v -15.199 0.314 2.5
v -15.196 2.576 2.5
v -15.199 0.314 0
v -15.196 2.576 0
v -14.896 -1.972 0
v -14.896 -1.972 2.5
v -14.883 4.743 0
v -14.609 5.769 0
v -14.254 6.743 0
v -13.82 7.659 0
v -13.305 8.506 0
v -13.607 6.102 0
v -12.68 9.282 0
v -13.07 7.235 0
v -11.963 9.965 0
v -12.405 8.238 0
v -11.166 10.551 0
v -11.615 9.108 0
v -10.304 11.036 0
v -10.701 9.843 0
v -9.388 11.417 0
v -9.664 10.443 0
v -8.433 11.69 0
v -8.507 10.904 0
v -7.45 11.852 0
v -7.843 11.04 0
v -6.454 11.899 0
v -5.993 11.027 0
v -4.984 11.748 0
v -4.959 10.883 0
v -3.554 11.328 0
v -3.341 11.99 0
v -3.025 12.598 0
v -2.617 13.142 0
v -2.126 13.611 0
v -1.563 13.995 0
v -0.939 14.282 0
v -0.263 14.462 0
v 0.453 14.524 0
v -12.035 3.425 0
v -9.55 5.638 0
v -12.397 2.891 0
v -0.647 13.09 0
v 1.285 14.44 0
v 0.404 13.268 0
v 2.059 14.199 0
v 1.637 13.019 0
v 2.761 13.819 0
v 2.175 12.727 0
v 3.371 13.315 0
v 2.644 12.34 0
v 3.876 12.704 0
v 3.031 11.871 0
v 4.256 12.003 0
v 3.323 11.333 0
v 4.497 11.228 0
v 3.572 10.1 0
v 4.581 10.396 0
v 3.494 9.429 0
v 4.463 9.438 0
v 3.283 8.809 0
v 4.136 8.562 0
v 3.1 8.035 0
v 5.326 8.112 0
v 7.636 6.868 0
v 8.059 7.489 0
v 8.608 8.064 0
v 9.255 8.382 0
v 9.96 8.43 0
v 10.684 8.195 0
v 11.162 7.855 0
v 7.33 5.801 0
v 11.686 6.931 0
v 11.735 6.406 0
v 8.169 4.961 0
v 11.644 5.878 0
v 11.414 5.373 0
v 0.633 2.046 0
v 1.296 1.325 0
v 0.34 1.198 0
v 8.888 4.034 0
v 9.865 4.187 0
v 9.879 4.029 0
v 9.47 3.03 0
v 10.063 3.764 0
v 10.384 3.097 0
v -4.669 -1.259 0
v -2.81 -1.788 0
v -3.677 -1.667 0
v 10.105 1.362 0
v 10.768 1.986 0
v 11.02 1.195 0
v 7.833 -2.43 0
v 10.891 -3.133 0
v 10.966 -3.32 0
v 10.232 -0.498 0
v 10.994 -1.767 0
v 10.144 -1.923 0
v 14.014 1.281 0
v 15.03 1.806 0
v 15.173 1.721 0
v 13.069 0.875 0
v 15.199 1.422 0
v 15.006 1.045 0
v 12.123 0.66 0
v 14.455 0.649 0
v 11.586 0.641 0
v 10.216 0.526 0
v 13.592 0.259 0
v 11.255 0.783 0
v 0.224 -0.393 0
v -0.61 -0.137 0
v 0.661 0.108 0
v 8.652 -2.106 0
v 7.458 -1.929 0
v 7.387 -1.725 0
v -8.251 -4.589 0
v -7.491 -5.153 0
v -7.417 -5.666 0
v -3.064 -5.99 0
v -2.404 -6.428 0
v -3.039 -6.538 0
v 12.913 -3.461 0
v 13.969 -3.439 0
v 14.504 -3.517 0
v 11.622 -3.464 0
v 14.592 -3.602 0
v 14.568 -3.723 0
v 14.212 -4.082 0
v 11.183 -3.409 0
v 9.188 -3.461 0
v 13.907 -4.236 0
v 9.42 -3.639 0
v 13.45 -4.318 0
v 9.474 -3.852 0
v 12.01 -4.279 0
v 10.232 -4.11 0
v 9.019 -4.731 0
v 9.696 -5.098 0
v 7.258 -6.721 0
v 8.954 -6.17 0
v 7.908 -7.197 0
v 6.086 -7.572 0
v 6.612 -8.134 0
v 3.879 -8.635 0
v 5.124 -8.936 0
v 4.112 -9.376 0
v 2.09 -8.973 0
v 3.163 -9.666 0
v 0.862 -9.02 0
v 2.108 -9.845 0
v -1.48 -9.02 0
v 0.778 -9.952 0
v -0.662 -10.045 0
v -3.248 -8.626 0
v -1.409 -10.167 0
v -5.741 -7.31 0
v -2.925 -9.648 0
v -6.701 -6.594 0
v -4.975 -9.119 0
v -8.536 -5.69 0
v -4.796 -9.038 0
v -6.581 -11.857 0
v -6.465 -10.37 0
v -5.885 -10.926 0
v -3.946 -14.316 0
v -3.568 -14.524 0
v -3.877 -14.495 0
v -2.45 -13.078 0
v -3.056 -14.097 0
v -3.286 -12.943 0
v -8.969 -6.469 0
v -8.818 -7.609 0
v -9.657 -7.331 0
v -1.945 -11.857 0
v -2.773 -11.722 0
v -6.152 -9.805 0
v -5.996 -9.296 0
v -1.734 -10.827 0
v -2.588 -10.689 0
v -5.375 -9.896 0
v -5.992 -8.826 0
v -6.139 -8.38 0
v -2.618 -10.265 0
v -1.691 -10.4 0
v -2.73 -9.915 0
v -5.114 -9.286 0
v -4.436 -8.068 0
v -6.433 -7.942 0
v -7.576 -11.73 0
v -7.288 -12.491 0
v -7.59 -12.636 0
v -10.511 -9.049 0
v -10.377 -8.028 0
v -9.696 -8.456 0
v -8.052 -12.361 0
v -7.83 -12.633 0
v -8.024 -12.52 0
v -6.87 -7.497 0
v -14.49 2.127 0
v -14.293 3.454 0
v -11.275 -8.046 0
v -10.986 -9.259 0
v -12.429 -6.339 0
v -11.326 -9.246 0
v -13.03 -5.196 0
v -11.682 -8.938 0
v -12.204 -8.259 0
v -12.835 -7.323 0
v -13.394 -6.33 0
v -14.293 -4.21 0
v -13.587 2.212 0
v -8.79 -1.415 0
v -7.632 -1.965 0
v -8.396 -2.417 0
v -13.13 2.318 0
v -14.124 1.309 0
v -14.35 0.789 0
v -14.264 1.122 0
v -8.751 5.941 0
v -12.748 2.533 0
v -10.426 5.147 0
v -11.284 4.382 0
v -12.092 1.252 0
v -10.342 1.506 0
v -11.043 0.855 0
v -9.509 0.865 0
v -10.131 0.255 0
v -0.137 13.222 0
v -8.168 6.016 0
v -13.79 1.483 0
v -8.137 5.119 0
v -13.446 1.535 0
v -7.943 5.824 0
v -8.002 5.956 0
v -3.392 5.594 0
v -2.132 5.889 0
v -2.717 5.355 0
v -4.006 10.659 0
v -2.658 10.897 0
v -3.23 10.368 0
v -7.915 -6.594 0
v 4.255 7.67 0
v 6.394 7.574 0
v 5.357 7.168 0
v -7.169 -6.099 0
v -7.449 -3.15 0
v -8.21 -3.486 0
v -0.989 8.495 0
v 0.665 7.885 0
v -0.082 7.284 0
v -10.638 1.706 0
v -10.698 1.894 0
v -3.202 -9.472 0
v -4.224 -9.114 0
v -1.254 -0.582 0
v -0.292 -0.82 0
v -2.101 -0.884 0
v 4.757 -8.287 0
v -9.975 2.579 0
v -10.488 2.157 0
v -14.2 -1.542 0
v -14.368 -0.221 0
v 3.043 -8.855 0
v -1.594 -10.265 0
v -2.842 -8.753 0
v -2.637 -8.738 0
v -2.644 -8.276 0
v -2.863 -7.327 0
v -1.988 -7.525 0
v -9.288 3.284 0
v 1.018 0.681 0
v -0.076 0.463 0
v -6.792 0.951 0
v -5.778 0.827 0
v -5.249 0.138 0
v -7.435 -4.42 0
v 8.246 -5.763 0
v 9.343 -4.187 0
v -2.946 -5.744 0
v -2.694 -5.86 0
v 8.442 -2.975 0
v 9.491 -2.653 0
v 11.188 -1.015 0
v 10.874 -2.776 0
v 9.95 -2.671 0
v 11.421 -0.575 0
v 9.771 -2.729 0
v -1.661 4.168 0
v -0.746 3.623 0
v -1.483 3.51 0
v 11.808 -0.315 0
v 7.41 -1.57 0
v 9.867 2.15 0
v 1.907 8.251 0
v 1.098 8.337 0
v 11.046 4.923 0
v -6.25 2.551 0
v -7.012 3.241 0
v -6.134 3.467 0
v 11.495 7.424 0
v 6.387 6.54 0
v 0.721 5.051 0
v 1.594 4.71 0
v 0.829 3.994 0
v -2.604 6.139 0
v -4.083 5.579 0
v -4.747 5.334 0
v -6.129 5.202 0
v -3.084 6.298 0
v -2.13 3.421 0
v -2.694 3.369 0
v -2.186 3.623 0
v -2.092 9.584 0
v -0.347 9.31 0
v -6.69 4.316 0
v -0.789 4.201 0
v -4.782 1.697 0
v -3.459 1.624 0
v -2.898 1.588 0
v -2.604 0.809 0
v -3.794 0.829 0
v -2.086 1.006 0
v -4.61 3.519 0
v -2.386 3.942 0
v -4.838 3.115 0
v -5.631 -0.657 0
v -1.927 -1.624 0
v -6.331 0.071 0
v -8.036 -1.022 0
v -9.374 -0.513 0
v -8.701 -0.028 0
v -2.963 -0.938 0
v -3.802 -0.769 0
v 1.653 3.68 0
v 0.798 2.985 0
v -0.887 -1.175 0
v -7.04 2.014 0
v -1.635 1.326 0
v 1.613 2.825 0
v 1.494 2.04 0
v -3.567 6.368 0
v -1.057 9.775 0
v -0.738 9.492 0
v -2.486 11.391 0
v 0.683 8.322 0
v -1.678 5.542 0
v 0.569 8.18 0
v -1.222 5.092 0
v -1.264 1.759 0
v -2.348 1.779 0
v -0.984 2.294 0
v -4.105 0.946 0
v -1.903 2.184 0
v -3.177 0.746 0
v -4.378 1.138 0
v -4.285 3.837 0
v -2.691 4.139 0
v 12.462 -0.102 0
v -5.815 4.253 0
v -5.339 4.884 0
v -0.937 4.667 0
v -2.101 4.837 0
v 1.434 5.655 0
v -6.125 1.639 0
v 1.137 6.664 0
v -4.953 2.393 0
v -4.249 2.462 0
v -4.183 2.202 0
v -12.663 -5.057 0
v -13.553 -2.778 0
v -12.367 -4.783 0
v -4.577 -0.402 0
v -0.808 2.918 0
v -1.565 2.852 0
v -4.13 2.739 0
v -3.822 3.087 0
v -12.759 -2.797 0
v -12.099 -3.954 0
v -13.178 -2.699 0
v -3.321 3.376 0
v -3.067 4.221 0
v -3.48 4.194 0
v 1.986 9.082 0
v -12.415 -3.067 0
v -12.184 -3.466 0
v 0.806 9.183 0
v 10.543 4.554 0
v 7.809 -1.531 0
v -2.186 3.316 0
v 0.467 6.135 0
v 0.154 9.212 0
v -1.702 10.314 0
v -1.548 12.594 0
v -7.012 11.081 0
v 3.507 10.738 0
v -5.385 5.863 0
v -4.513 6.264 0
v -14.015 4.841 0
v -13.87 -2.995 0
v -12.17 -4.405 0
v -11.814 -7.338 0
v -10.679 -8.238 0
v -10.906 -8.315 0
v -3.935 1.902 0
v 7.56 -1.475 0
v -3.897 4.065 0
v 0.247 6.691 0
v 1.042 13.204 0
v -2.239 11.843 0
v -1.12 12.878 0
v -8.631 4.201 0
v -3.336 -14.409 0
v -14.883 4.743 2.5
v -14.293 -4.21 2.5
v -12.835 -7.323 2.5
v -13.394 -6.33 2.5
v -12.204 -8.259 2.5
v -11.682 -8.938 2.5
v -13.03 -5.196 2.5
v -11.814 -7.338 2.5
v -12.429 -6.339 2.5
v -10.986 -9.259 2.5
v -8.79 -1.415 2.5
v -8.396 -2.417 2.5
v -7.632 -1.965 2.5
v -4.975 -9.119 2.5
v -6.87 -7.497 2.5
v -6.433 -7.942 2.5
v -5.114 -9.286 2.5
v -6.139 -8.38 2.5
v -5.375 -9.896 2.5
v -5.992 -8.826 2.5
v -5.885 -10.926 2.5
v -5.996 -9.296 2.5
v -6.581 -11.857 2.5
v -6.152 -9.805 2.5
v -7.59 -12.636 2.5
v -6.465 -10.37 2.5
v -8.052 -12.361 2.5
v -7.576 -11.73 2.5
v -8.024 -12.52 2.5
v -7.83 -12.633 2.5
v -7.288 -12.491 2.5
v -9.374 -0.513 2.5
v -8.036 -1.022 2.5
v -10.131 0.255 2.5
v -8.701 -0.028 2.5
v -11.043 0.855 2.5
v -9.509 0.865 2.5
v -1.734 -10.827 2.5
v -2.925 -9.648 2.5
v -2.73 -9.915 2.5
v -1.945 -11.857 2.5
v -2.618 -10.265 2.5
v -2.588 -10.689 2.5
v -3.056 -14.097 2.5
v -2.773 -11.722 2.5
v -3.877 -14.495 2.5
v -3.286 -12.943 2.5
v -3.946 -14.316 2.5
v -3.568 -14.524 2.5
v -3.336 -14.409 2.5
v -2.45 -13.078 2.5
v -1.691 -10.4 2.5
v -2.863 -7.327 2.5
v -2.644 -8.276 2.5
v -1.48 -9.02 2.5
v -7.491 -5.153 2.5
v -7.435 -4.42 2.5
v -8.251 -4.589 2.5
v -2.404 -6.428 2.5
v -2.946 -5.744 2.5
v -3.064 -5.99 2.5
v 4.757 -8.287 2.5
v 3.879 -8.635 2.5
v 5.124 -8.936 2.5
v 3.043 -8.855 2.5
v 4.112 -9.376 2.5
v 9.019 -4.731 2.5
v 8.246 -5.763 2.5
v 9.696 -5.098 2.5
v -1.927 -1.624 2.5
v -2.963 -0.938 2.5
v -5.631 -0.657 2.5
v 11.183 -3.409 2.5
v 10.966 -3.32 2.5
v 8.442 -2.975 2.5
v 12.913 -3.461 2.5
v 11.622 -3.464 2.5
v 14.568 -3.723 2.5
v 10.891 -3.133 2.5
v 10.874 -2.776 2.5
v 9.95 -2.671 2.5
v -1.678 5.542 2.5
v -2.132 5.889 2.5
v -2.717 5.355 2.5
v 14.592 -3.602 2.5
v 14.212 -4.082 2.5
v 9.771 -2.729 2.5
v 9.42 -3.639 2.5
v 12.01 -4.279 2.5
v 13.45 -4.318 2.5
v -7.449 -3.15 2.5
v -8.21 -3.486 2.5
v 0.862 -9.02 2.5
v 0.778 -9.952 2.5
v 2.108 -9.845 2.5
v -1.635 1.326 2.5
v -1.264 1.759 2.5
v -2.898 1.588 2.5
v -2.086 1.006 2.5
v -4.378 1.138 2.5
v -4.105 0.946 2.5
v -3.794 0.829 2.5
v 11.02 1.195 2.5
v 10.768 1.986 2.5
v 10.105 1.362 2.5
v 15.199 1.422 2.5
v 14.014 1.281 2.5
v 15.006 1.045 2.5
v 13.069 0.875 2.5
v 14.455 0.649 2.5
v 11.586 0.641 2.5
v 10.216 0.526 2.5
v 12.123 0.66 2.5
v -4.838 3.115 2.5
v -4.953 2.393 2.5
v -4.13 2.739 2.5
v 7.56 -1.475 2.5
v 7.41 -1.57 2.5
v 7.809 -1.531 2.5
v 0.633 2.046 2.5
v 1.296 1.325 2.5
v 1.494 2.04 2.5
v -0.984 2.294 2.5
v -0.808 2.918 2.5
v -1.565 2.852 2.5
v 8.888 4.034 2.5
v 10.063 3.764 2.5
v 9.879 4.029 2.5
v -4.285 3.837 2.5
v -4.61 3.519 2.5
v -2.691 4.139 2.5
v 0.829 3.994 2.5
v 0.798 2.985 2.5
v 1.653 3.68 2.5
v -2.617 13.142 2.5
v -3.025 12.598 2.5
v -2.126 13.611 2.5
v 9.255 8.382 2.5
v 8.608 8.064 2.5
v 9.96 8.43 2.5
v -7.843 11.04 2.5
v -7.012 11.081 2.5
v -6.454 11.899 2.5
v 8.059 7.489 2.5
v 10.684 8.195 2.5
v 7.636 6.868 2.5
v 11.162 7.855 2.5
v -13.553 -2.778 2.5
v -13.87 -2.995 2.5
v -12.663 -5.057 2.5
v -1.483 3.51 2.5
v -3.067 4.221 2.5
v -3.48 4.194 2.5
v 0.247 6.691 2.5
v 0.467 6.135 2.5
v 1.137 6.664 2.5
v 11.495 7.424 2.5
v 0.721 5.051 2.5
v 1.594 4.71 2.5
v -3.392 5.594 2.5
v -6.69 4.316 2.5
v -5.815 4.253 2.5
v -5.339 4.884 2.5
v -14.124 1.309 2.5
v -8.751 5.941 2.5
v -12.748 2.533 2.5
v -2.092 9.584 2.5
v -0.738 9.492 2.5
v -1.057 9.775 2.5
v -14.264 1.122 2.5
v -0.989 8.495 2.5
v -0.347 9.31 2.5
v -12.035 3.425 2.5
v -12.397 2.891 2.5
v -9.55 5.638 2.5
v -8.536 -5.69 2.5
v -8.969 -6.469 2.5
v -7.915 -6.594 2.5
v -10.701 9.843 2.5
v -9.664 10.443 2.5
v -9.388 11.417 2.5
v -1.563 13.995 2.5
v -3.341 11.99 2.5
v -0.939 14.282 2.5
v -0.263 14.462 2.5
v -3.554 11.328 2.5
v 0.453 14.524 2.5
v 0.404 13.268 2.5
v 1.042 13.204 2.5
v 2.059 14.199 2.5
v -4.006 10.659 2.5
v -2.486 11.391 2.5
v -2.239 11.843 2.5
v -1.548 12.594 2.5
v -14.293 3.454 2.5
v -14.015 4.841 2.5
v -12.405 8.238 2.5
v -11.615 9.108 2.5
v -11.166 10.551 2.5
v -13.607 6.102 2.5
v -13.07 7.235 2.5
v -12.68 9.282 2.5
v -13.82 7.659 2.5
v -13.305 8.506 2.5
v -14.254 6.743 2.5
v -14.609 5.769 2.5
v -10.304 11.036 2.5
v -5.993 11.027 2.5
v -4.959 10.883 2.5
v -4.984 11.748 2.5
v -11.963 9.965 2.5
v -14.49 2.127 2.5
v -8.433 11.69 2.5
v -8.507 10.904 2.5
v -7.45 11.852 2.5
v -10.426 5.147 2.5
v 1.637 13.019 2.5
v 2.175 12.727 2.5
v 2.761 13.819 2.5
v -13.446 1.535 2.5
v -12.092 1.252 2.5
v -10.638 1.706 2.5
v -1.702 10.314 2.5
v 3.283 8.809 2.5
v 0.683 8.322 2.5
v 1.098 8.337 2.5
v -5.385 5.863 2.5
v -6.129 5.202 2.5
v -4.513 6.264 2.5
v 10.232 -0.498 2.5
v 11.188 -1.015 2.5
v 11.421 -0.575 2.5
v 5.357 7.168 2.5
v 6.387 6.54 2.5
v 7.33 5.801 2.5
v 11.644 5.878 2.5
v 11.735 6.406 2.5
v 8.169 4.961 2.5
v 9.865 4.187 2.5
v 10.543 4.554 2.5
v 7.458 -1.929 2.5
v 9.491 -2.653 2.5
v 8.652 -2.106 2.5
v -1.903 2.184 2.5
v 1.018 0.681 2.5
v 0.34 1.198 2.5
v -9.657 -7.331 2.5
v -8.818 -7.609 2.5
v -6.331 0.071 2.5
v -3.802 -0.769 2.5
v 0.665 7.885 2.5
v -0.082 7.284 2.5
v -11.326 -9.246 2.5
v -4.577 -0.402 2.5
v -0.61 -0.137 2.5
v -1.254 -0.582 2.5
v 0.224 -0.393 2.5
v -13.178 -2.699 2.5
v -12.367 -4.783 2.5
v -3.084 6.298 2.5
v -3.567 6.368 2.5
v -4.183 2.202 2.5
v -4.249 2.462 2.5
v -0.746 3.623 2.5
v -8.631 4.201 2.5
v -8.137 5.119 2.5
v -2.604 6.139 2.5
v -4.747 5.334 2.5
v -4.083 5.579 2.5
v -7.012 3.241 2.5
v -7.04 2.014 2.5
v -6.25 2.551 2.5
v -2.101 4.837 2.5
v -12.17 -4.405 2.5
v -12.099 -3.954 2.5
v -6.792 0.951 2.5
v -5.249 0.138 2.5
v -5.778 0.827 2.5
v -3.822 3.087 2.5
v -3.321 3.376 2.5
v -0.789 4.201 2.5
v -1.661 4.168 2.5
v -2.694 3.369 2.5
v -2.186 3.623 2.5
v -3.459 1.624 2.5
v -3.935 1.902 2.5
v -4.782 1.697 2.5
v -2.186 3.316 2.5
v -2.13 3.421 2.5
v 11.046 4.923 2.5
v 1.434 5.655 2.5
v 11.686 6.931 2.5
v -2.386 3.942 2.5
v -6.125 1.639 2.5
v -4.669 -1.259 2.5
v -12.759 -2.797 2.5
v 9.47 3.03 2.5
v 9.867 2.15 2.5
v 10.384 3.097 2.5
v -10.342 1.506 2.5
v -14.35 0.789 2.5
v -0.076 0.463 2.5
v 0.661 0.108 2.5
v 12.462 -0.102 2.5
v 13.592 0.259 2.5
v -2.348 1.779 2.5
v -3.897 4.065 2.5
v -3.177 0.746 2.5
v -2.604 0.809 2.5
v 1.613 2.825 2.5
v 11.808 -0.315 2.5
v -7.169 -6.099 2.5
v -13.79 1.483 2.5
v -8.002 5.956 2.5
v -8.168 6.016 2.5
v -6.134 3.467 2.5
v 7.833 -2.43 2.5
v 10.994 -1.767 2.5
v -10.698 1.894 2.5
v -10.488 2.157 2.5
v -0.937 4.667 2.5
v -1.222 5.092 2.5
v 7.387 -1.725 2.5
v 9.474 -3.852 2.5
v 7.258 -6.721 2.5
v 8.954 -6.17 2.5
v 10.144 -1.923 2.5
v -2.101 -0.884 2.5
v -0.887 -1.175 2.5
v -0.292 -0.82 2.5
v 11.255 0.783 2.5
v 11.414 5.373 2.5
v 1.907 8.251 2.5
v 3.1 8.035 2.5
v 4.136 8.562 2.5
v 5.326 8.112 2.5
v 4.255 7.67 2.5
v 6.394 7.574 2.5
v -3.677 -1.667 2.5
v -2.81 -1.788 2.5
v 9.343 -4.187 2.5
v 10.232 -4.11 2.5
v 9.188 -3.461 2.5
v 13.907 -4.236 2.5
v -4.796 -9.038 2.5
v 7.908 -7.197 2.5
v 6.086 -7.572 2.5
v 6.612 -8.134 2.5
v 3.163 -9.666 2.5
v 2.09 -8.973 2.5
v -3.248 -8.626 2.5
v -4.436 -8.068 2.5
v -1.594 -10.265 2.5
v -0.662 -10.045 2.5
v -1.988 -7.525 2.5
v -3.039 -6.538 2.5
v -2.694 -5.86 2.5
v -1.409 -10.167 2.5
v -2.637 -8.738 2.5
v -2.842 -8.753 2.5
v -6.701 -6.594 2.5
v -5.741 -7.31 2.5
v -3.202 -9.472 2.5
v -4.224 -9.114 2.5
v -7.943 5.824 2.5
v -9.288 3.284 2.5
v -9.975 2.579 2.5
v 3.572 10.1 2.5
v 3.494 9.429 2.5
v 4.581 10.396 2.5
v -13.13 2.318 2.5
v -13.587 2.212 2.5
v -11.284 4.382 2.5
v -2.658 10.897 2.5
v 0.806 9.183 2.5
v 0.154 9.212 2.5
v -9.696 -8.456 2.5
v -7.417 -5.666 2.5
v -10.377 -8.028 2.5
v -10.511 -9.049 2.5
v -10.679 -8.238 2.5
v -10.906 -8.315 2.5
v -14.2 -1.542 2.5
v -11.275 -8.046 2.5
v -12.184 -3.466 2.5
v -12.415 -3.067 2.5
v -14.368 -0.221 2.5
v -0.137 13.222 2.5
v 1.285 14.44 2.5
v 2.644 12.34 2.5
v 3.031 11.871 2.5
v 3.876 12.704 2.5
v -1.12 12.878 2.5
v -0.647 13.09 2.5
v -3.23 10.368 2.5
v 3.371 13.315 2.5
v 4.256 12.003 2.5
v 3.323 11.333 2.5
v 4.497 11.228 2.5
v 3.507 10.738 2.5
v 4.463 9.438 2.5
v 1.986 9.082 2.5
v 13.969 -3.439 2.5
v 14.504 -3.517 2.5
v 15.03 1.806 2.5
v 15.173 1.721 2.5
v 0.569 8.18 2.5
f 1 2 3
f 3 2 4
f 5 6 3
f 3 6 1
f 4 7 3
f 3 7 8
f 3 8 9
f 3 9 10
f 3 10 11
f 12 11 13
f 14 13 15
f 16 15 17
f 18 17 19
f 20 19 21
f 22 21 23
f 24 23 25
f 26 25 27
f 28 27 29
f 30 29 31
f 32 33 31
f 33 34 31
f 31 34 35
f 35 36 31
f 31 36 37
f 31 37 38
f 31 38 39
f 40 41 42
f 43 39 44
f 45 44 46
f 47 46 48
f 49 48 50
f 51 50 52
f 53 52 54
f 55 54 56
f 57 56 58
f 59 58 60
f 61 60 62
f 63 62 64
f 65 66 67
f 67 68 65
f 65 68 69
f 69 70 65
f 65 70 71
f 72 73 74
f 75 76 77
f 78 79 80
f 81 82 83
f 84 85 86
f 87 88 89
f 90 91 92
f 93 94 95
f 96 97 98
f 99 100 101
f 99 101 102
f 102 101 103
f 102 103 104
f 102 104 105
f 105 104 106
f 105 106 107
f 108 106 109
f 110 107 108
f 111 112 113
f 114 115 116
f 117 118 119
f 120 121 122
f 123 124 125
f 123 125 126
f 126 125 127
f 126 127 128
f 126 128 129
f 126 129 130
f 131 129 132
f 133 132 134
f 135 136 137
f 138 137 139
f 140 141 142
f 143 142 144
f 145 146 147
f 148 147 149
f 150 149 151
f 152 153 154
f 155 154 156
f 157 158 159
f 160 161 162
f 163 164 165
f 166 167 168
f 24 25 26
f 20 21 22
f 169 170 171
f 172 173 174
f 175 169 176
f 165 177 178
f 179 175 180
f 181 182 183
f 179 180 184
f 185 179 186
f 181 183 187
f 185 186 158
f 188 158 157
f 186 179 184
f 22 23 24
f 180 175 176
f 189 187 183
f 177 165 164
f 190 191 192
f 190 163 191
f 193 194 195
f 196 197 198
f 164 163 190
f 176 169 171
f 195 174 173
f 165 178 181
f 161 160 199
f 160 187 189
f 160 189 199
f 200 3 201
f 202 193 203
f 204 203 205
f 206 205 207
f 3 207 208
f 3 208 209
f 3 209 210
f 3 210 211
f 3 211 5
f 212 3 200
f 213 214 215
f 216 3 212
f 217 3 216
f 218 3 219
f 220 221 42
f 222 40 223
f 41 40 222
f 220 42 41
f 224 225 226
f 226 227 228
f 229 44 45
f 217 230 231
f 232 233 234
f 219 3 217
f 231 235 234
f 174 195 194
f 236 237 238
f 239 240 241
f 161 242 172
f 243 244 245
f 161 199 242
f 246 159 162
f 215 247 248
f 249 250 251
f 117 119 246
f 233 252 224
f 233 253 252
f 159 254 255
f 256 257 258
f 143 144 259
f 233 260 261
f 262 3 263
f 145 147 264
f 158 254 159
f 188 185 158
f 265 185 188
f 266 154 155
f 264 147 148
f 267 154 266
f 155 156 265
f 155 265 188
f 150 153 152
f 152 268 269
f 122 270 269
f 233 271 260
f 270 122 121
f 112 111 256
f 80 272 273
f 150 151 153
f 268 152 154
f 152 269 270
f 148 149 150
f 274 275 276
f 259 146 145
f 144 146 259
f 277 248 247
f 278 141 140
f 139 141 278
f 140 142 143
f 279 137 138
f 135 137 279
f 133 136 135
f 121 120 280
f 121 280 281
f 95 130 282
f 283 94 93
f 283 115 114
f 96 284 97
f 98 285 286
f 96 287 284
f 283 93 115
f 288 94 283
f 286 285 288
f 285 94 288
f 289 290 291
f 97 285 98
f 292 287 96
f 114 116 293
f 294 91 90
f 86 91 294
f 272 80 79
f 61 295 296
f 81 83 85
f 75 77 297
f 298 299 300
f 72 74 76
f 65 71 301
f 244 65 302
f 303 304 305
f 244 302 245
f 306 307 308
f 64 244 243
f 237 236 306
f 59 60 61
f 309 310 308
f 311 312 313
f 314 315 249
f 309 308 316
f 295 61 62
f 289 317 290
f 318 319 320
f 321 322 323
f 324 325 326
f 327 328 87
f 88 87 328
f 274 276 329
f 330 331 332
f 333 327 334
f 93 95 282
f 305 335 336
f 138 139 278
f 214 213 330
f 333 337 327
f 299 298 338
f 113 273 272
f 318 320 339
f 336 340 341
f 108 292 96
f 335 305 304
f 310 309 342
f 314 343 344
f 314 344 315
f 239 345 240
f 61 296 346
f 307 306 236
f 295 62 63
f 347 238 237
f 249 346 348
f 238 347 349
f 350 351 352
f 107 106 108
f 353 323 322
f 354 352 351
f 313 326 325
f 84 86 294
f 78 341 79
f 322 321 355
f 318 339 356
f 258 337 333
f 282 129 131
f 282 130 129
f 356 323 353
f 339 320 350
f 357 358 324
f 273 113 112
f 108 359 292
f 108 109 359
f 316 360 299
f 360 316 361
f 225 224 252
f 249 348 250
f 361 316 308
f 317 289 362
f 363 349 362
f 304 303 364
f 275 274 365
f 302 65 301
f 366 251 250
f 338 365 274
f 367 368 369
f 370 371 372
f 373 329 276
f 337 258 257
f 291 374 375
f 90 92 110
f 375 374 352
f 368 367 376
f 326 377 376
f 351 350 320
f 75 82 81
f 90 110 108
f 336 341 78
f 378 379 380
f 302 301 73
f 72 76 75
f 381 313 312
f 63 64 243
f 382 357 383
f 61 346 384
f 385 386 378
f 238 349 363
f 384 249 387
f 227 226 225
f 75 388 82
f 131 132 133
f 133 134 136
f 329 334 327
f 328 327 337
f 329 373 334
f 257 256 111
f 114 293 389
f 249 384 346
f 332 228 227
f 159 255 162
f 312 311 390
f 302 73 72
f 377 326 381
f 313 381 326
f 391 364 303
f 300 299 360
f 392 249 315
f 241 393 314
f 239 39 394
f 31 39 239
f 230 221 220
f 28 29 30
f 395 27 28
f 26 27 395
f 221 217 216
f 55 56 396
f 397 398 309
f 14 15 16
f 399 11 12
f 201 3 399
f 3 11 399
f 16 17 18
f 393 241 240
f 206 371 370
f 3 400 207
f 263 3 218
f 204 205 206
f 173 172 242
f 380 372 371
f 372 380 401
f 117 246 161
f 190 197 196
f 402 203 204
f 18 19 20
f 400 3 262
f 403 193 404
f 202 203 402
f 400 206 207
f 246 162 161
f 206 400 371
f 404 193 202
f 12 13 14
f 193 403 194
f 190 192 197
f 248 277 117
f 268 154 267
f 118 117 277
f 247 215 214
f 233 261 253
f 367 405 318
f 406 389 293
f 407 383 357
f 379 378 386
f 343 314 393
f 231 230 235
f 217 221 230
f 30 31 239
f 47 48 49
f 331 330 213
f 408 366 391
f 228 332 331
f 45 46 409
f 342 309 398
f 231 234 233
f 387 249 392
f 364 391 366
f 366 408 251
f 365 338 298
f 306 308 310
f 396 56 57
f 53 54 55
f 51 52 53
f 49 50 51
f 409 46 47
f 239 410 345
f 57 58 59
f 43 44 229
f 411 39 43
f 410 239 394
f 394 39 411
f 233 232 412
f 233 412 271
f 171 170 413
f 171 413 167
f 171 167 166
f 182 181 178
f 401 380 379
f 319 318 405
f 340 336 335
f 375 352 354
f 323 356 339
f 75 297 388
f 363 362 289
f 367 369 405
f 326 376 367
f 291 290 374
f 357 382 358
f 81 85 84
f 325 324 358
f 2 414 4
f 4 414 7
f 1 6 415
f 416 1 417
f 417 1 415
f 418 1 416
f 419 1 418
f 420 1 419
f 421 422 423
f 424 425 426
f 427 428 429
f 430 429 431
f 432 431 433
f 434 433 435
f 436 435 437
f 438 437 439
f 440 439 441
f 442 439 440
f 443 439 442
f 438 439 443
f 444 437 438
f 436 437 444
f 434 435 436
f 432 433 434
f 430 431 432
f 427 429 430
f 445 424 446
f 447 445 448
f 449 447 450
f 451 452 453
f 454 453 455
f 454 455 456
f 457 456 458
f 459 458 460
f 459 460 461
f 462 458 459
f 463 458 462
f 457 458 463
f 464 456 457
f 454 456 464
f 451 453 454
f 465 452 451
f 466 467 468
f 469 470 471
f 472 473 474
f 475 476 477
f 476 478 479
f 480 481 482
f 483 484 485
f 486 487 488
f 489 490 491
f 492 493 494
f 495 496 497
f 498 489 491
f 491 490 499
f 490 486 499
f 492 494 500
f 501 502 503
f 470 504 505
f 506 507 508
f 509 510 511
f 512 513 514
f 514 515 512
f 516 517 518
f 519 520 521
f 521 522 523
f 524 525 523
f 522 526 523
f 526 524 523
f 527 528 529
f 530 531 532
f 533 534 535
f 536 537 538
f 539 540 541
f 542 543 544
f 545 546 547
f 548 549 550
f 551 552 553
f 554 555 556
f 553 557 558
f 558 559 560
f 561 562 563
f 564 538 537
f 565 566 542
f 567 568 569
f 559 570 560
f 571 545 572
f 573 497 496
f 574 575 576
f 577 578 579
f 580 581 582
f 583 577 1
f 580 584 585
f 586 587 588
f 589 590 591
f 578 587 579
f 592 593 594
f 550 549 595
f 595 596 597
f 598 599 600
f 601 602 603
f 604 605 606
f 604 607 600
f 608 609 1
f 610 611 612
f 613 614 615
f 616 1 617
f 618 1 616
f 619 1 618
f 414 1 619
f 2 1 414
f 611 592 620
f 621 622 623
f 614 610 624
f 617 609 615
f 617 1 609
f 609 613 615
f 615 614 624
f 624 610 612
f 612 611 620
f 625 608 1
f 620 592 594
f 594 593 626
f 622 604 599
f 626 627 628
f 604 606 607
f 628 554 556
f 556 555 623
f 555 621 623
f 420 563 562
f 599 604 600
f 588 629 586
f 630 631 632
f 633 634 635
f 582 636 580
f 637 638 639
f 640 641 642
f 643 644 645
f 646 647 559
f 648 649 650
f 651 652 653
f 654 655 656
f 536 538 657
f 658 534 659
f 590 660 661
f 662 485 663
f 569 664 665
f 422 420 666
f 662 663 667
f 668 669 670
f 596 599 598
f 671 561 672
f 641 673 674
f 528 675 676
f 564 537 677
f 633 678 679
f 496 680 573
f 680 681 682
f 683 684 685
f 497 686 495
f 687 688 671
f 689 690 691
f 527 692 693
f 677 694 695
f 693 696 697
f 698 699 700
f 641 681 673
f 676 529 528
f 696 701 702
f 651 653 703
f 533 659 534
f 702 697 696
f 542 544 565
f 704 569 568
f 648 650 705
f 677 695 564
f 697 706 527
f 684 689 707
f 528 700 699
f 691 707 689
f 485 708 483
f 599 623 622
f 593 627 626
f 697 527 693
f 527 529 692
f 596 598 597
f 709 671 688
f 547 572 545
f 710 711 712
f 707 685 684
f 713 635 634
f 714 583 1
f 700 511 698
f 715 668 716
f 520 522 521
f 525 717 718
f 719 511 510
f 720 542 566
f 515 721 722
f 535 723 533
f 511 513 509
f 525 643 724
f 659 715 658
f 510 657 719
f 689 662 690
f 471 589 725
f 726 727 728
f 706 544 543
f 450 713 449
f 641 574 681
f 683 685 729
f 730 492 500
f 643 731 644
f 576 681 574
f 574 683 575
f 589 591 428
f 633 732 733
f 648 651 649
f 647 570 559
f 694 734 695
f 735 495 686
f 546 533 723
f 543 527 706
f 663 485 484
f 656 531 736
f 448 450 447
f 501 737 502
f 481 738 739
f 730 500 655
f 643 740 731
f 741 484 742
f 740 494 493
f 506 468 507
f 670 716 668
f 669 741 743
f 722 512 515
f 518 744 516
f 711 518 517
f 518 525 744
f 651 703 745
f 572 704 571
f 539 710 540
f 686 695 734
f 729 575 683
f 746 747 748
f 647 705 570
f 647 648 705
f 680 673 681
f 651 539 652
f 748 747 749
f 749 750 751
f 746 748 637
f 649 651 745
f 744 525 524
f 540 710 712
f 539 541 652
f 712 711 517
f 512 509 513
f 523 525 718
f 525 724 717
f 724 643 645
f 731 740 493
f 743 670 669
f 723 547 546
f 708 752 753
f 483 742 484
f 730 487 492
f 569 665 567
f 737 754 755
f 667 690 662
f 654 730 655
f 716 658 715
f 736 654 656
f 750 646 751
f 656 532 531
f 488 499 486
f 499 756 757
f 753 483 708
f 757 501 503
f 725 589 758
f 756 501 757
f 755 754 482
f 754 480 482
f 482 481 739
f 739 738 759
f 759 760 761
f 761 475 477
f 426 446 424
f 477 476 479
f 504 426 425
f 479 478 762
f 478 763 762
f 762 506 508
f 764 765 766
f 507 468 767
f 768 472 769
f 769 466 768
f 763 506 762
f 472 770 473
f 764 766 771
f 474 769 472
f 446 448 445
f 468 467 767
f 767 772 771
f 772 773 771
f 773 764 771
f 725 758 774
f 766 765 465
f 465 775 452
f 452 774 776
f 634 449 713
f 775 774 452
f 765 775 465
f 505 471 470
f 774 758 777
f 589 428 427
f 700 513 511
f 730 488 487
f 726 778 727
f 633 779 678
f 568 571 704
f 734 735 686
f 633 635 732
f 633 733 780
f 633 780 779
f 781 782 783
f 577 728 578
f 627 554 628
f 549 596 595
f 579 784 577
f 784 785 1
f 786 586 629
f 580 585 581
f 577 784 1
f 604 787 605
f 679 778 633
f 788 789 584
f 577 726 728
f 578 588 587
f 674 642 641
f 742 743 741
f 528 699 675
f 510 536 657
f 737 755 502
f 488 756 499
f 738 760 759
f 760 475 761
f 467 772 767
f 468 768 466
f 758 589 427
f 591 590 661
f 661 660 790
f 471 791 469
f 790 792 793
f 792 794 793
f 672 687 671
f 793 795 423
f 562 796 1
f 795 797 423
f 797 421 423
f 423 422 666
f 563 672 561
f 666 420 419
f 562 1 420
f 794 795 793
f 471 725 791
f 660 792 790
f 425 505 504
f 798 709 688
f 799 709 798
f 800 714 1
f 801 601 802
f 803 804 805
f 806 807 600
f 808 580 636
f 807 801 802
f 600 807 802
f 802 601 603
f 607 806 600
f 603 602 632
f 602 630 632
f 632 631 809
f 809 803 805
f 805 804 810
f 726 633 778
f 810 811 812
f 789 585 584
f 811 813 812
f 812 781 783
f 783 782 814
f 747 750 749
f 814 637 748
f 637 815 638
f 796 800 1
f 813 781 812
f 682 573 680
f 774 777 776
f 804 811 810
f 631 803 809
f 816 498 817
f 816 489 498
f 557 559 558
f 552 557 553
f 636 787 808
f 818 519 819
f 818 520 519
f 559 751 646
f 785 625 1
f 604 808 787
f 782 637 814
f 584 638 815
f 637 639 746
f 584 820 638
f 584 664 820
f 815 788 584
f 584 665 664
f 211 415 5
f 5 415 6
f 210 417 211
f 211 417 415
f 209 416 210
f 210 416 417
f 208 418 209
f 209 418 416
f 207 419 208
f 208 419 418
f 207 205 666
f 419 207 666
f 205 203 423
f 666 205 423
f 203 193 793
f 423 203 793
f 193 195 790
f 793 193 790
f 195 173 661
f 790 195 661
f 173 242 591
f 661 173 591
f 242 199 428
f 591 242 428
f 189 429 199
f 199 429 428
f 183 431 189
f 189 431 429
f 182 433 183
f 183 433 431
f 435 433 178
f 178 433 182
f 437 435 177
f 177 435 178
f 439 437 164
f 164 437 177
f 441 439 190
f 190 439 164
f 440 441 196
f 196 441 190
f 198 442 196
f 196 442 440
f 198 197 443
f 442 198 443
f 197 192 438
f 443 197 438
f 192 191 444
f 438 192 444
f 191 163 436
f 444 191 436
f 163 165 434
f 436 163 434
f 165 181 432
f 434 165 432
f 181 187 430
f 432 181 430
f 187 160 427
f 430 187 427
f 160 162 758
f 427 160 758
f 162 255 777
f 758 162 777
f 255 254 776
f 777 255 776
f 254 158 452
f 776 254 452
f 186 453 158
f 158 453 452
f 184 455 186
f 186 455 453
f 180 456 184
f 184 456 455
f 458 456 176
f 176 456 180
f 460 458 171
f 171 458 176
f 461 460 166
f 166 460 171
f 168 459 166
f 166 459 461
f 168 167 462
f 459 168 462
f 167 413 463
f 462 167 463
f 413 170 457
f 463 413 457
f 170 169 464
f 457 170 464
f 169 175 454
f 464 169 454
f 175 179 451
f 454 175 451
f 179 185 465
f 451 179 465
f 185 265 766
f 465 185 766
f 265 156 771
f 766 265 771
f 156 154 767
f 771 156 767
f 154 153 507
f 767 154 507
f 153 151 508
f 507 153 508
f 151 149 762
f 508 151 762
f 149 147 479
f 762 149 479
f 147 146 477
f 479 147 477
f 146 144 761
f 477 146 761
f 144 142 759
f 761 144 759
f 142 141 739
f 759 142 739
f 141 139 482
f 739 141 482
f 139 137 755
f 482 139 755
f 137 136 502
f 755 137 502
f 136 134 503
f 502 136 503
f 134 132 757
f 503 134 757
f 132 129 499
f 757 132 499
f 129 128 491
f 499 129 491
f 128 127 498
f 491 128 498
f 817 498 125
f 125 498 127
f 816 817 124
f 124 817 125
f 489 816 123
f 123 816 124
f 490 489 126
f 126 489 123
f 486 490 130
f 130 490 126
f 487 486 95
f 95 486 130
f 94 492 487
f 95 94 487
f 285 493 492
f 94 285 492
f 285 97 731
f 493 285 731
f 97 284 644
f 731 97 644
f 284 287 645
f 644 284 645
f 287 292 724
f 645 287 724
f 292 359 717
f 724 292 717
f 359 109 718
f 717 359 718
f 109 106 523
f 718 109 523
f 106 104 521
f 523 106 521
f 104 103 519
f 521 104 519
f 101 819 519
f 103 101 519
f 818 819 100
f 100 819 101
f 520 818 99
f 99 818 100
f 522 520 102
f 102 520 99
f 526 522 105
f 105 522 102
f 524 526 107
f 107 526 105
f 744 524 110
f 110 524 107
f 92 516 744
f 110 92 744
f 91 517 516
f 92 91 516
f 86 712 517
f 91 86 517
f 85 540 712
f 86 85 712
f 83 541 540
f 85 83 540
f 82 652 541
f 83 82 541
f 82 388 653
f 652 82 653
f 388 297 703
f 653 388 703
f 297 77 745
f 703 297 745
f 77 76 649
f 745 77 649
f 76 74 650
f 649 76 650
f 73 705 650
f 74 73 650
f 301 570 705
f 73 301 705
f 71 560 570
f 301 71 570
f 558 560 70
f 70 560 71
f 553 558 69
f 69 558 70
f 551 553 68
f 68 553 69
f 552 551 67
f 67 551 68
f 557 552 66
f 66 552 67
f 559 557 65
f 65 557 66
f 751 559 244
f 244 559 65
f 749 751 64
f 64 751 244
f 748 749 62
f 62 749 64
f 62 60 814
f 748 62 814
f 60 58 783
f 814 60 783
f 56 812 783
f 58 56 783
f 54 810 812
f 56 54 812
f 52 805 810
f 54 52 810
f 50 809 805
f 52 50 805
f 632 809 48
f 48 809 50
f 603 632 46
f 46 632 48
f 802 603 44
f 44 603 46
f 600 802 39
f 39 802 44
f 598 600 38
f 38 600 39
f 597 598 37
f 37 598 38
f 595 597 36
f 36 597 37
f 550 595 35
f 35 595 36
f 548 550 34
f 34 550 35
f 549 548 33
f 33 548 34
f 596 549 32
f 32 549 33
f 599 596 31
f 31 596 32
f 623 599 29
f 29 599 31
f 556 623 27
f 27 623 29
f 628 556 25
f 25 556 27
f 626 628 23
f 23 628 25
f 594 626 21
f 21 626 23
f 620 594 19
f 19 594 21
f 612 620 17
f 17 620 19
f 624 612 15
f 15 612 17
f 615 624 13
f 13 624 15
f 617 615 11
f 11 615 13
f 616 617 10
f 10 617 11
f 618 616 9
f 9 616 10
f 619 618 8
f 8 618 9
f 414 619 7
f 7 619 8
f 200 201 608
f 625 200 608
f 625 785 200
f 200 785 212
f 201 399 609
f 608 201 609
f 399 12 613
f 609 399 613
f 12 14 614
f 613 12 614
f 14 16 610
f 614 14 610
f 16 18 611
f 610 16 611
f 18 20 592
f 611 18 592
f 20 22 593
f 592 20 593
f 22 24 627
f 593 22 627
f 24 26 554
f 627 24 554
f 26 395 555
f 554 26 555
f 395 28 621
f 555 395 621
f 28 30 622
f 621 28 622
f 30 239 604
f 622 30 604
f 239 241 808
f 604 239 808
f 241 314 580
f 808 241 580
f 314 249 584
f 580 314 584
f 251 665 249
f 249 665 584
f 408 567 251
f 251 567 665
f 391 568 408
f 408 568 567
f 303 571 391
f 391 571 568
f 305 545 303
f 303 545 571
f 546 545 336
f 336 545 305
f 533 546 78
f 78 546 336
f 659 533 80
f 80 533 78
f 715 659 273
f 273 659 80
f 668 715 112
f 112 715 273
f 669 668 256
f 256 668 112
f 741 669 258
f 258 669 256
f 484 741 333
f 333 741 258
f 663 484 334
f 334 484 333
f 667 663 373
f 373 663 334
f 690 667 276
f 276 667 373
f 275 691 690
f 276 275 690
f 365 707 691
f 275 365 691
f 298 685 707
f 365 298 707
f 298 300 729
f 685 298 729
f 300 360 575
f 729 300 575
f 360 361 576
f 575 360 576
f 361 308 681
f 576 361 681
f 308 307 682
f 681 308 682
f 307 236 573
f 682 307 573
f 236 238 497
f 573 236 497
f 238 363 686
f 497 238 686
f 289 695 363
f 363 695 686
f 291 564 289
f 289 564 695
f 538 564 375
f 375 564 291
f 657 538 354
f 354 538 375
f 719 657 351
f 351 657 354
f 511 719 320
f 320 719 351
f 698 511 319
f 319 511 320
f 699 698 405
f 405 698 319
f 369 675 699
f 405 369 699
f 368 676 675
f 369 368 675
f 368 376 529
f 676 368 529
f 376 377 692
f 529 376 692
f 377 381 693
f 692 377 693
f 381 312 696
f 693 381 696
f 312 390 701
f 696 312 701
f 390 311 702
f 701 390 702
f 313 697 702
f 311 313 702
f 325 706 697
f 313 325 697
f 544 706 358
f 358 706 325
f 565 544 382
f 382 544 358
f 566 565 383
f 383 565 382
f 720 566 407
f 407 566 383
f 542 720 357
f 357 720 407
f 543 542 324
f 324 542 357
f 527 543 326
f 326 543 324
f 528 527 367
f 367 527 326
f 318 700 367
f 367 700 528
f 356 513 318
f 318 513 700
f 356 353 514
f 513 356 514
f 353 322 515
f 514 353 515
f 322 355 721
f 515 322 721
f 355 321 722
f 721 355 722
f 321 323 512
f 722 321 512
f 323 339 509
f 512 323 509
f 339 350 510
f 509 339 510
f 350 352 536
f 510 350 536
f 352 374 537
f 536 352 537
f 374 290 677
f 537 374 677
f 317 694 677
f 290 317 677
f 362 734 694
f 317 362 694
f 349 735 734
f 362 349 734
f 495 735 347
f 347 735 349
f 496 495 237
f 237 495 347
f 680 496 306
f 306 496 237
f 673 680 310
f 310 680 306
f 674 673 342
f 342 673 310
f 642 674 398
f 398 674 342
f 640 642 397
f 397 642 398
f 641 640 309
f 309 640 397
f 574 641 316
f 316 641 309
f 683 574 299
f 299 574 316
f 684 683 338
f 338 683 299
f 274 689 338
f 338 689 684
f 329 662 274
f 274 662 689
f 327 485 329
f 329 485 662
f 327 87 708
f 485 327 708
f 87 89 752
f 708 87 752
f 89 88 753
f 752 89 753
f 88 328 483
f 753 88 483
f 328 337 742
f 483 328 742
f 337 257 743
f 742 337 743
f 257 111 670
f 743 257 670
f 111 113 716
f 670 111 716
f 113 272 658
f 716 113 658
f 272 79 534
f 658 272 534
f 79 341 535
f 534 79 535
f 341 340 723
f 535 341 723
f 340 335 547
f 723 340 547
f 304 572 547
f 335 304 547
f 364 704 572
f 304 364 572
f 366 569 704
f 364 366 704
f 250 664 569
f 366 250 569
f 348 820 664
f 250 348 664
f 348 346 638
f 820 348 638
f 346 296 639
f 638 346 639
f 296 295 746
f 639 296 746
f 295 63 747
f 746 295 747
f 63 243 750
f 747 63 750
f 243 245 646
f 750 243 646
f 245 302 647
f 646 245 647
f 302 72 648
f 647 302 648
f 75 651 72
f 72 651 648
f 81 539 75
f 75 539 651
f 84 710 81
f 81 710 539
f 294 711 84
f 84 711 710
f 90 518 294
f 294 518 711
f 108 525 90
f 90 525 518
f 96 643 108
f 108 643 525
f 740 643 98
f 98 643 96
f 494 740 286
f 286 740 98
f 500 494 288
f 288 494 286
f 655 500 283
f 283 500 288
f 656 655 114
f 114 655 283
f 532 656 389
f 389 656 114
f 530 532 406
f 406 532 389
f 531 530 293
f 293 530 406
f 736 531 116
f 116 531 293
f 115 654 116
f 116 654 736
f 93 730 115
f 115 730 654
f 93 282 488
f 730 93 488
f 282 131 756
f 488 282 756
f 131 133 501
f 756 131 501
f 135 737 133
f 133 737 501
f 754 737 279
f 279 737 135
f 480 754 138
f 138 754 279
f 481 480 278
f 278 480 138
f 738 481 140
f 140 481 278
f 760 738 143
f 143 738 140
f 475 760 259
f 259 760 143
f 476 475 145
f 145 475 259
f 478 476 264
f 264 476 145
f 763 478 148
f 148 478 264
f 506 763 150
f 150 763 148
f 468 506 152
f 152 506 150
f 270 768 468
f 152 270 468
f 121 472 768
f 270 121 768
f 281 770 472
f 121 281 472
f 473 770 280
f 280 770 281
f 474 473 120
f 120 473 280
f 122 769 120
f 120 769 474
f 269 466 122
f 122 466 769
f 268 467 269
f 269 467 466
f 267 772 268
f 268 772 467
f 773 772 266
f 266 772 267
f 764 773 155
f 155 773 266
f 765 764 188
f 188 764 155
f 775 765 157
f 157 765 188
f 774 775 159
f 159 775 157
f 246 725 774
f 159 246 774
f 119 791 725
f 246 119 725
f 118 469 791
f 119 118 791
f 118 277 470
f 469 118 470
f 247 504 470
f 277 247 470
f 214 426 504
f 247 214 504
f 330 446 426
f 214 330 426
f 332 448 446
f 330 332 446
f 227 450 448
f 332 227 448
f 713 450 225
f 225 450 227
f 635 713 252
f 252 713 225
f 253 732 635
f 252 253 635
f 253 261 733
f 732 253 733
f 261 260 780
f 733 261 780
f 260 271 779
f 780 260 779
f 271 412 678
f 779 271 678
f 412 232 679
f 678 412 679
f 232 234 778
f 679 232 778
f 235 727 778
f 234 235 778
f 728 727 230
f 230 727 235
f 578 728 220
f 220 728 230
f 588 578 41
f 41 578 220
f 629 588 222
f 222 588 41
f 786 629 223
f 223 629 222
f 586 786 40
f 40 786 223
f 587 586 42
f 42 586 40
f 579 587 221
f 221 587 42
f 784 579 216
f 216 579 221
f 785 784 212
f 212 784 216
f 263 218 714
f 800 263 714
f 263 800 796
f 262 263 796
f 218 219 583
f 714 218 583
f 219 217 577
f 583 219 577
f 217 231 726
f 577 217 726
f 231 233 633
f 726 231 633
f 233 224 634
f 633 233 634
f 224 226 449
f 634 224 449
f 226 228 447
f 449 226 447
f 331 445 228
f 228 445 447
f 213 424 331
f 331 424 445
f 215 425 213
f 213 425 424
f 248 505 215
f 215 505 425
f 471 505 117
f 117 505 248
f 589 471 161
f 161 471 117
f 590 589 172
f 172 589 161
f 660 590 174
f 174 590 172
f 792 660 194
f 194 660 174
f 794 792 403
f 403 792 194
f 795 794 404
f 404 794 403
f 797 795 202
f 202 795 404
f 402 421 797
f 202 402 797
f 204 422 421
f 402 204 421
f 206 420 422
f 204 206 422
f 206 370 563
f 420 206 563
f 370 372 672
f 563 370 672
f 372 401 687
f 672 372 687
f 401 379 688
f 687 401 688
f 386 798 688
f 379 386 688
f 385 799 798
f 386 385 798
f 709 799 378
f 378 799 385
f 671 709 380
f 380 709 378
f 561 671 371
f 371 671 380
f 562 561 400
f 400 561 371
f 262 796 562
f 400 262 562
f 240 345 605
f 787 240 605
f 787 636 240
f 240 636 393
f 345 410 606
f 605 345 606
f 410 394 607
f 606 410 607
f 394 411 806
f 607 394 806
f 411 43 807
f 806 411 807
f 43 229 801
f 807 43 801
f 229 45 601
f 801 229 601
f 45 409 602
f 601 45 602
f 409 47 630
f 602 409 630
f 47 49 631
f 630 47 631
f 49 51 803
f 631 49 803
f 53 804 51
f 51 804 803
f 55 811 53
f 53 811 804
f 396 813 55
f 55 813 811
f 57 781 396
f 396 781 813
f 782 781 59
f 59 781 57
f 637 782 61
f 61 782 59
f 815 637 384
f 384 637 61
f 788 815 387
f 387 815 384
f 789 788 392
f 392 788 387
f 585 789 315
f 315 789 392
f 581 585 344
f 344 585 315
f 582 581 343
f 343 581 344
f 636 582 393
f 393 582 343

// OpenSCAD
fudge = 0.1;

module poly_path3768(h)
{
  scale([25.4/90, -25.4/90, 1]) union()
  {
    difference()
    {
       linear_extrude(height=h)
         polygon([[1.606250,-51.462500],[-0.933419,-51.241604],[-3.327468,-50.604028],[-5.539468,-49.587434],[-7.532991,-48.229490],[-9.271609,-46.567859],[-10.718893,-44.640208],[-11.838416,-42.484199],[-12.593750,-40.137500],[-17.660693,-41.628125],[-22.868750,-42.162500],[-26.399351,-41.995977],[-29.880433,-41.422413],[-33.265864,-40.454386],[-36.509517,-39.104472],[-39.565261,-37.385249],[-42.386968,-35.309295],[-44.928507,-32.889186],[-47.143750,-30.137500],[-48.968726,-27.136914],[-50.507617,-23.893750],[-51.762622,-20.439648],[-52.735938,-16.806250],[-53.846289,-9.128125],[-53.856250,-1.112500],[-52.783398,6.987500],[-50.645313,14.918750],[-47.459570,22.428125],[-45.479321,25.945508],[-43.243750,29.262500],[-41.392188,31.668750],[-40.131250,32.762500],[-38.926562,32.806250],[-37.243750,32.062500],[-34.356250,29.962500],[-31.243750,26.962500],[-28.043750,23.362500],[-24.343750,26.562500],[-22.794141,28.142188],[-21.753125,29.693750],[-21.232422,31.273438],[-21.243750,32.937500],[-21.798828,34.742187],[-22.909375,36.743750],[-26.843750,41.562500],[-28.531250,43.800000],[-28.432812,44.360938],[-27.743750,44.762500],[-26.894141,44.772266],[-25.821875,44.259375],[-23.318750,42.012500],[-20.853125,38.715625],[-19.043750,35.062500],[-18.121875,32.901563],[-17.626953,32.311523],[-16.993750,32.025000],[-14.965625,32.292188],[-11.343750,33.562500],[-10.364062,34.185352],[-9.675000,35.132813],[-9.276562,36.373242],[-9.168750,37.875000],[-9.825000,41.535937],[-11.643750,45.862500],[-13.981250,50.725000],[-13.739062,51.360938],[-12.643750,51.462500],[-11.818945,51.055469],[-10.826562,49.950000],[-8.681250,46.337500],[-6.892187,42.012500],[-6.143750,38.362500],[-5.990625,36.851563],[-5.648047,36.370898],[-4.993750,36.025000],[-2.346875,35.592187],[2.756250,35.262500],[7.468750,34.882812],[11.206250,34.250000],[14.568750,33.223437],[18.156250,31.662500],[23.429688,28.820313],[28.018750,25.500000],[31.726563,21.860937],[34.356250,18.062500],[36.256250,14.562500],[42.556250,15.162500],[47.656250,15.300000],[49.278125,15.007813],[50.356250,14.462500],[51.620313,13.190625],[51.704492,12.764453],[51.393750,12.462500],[49.498437,12.184375],[45.756250,12.262500],[41.181250,12.275000],[39.625000,12.079688],[38.856250,11.762500],[38.590625,11.100000],[38.531250,9.837500],[38.956250,6.262500],[39.642188,3.596875],[40.468750,2.037500],[41.839063,1.115625],[44.156250,0.362500],[48.160938,-0.917188],[51.218750,-2.300000],[53.170313,-3.701562],[53.856250,-5.037500],[53.762500,-6.098438],[53.256250,-6.400000],[49.656250,-4.537500],[46.306250,-3.100000],[42.956250,-2.337500],[41.053125,-2.270313],[39.881250,-2.775000],[39.046875,-4.235938],[38.156250,-7.037500],[36.793750,-10.975000],[35.656250,-13.337500],[35.006250,-14.275000],[34.956250,-14.837500],[37.356250,-16.137500],[39.141406,-17.442383],[40.443750,-19.039063],[41.258594,-20.825586],[41.581250,-22.700000],[41.407031,-24.560352],[40.731250,-26.304688],[39.549219,-27.831055],[37.856250,-29.037500],[35.292188,-29.870313],[32.793750,-29.700000],[30.501563,-28.573438],[28.556250,-26.537500],[27.056250,-24.337500],[22.656250,-26.837500],[18.871848,-28.742324],[14.656250,-30.337500],[15.813602,-33.443083],[16.231250,-36.837500],[15.933978,-39.783940],[15.081452,-42.528730],[13.732605,-45.012935],[11.946371,-47.177621],[9.781685,-48.963855],[7.297480,-50.312702],[4.552690,-51.165228],[1.606250,-51.462500]]);
       translate([0, 0, -fudge])
         linear_extrude(height=h+2*fudge)
           polygon([[1.431250,-47.012500],[3.692782,-46.784348],[5.799502,-46.130042],[7.706187,-45.094806],[9.367613,-43.723863],[10.738556,-42.062437],[11.773792,-40.155752],[12.428098,-38.049032],[12.656250,-35.787500],[12.382163,-33.410111],[11.631250,-31.212500],[7.037140,-32.179290],[2.856250,-32.537500],[0.545313,-32.640625],[-1.231250,-32.987500],[-2.614063,-33.634375],[-3.743750,-34.637500],[-6.031056,-36.544582],[-9.418750,-38.612500],[-8.809018,-40.361393],[-7.932452,-41.964445],[-5.485905,-44.625340],[-3.969466,-45.629341],[-2.293280,-46.379815],[-0.484117,-46.849842],[1.431250,-47.012500]]);
       translate([0, 0, -fudge])
         linear_extrude(height=h+2*fudge)
           polygon([[-24.843750,-39.262500],[-21.235561,-39.073198],[-17.571020,-38.560550],[-14.192844,-37.767627],[-11.443750,-36.737500],[-7.414062,-33.957813],[-3.506250,-30.100000],[-0.292187,-25.810938],[0.875977,-23.706836],[1.656250,-21.737500],[2.554883,-17.897070],[2.939063,-14.151562],[2.828711,-10.577148],[2.243750,-7.250000],[1.204102,-4.246289],[-0.270312,-1.642188],[-2.159570,0.486133],[-4.443750,2.062500],[-7.443750,3.131836],[-10.500000,3.323437],[-13.471875,2.725195],[-16.218750,1.425000],[-18.600000,-0.489258],[-20.475000,-2.929688],[-21.703125,-5.808398],[-22.143750,-9.037500],[-21.733594,-12.285352],[-20.606250,-15.070313],[-18.916406,-17.304492],[-16.818750,-18.900000],[-14.467969,-19.768945],[-12.018750,-19.823437],[-9.625781,-18.975586],[-7.443750,-17.137500],[-5.885937,-14.768750],[-5.256250,-12.437500],[-5.545312,-10.106250],[-6.743750,-7.737500],[-8.318750,-6.301563],[-10.268750,-5.625000],[-12.256250,-5.754688],[-13.943750,-6.737500],[-14.823438,-7.801563],[-15.056250,-8.725000],[-14.632813,-9.704688],[-13.543750,-10.937500],[-11.768750,-11.962500],[-9.543750,-11.937500],[-7.743750,-11.750000],[-7.546875,-12.120313],[-7.743750,-12.837500],[-8.455273,-13.966016],[-9.535937,-14.665625],[-10.867383,-14.957422],[-12.331250,-14.862500],[-13.809180,-14.401953],[-15.182812,-13.596875],[-16.333789,-12.468359],[-17.143750,-11.037500],[-17.550000,-8.478125],[-16.943750,-6.012500],[-15.512500,-4.034375],[-14.546094,-3.351172],[-13.443750,-2.937500],[-11.257031,-2.645117],[-9.225000,-2.867188],[-7.389844,-3.565039],[-5.793750,-4.700000],[-4.478906,-6.233398],[-3.487500,-8.126563],[-2.861719,-10.340820],[-2.643750,-12.837500],[-2.793750,-14.884375],[-3.318750,-16.537500],[-4.331250,-18.040625],[-5.943750,-19.637500],[-7.555688,-20.867114],[-9.225195,-21.754102],[-10.927808,-22.314429],[-12.639062,-22.564063],[-15.989648,-22.195117],[-19.081250,-20.775000],[-21.718164,-18.431445],[-23.704687,-15.292188],[-24.845117,-11.484961],[-24.943750,-7.137500],[-24.067188,-3.370313],[-22.431250,-0.250000],[-19.951562,2.326562],[-16.543750,4.462500],[-13.029687,5.906250],[-9.956250,6.337500],[-6.826562,5.756250],[-3.143750,4.162500],[-1.034375,2.906641],[0.793750,1.390625],[2.340625,-0.383203],[3.606250,-2.412500],[4.590625,-4.694922],[5.293750,-7.228125],[5.715625,-10.009766],[5.856250,-13.037500],[5.646875,-16.687500],[5.081250,-20.037500],[4.028125,-23.612500],[2.356250,-27.937500],[2.017188,-28.984375],[2.418750,-29.487500],[3.889062,-29.540625],[6.756250,-29.237500],[10.983984,-28.471289],[15.078125,-27.176563],[18.980078,-25.396680],[22.631250,-23.175000],[25.973047,-20.554883],[28.946875,-17.579688],[31.494141,-14.292773],[33.556250,-10.737500],[34.962500,-7.617188],[35.806250,-4.825000],[36.200000,-1.864063],[36.256250,1.762500],[35.943750,6.812500],[35.256250,9.462500],[34.621875,9.670312],[33.631250,9.400000],[30.656250,7.462500],[27.668750,5.425000],[26.789063,5.226562],[26.256250,5.562500],[26.174219,6.112891],[26.425000,6.834375],[27.756250,8.612500],[29.912500,10.540625],[32.556250,12.262500],[33.376563,12.895313],[33.568750,13.650000],[33.104688,14.835938],[31.956250,16.762500],[29.217188,20.418750],[25.718750,23.812500],[21.564063,26.831250],[16.856250,29.362500],[13.743750,30.598437],[10.781250,31.375000],[7.406250,31.795312],[3.056250,31.962500],[-5.243750,31.962500],[-7.043750,26.662500],[-8.518750,22.775000],[-9.543750,20.762500],[-10.439062,20.351562],[-10.856250,21.225000],[-10.767188,23.167187],[-10.143750,25.962500],[-9.368750,29.325000],[-9.343750,30.962500],[-10.069141,31.013281],[-11.509375,30.562500],[-15.718750,28.587500],[-20.340625,25.900000],[-23.743750,23.362500],[-25.401562,21.610938],[-26.281250,20.075000],[-26.542188,18.257812],[-26.343750,15.662500],[-26.393750,11.162500],[-27.043750,6.962500],[-28.473437,3.620313],[-30.831250,0.100000],[-33.695313,-3.064063],[-36.643750,-5.337500],[-37.692187,-6.043750],[-37.906250,-6.712500],[-37.164063,-7.643750],[-35.343750,-9.137500],[-32.910938,-11.637500],[-30.581250,-14.887500],[-28.832812,-18.137500],[-28.143750,-20.637500],[-28.353711,-21.104492],[-28.942187,-21.317188],[-31.006250,-21.050000],[-33.839062,-19.976563],[-36.943750,-18.237500],[-39.981250,-15.525000],[-42.643750,-12.137500],[-43.925000,-10.242188],[-45.168750,-8.975000],[-46.525000,-8.214063],[-48.143750,-7.837500],[-51.343750,-7.537500],[-50.643750,-12.237500],[-49.660352,-17.153516],[-48.214062,-21.621875],[-46.310742,-25.635547],[-43.956250,-29.187500],[-41.156445,-32.270703],[-37.917187,-34.878125],[-34.244336,-37.002734],[-30.143750,-38.637500],[-27.789232,-39.117088],[-24.843750,-39.262500]]);
       translate([0, 0, -fudge])
         linear_extrude(height=h+2*fudge)
           polygon([[-47.643750,-5.437500],[-42.843750,-4.437500],[-39.127734,-3.027734],[-35.896875,-0.903125],[-33.214453,1.816797],[-31.143750,5.012500],[-29.748047,8.564453],[-29.090625,12.353125],[-29.234766,16.258984],[-30.243750,20.162500],[-31.781250,22.923438],[-34.218750,25.975000],[-36.768750,28.445313],[-37.839844,29.190039],[-38.643750,29.462500],[-39.951577,28.509483],[-41.858912,26.000288],[-44.039916,22.459699],[-46.168750,18.412500],[-44.867847,17.917461],[-43.820725,16.946684],[-43.122616,15.608816],[-42.868750,14.012500],[-43.170226,12.280556],[-43.991437,10.866050],[-45.207554,9.912269],[-46.693750,9.562500],[-48.020927,9.842631],[-49.143750,10.612500],[-50.313945,5.464155],[-50.909415,0.782191],[-50.847053,-2.797119],[-50.543213,-3.974442],[-50.043750,-4.637500],[-48.862500,-5.253125],[-47.643750,-5.437500]]);
    }
  }
}

poly_path3768(2.5);
